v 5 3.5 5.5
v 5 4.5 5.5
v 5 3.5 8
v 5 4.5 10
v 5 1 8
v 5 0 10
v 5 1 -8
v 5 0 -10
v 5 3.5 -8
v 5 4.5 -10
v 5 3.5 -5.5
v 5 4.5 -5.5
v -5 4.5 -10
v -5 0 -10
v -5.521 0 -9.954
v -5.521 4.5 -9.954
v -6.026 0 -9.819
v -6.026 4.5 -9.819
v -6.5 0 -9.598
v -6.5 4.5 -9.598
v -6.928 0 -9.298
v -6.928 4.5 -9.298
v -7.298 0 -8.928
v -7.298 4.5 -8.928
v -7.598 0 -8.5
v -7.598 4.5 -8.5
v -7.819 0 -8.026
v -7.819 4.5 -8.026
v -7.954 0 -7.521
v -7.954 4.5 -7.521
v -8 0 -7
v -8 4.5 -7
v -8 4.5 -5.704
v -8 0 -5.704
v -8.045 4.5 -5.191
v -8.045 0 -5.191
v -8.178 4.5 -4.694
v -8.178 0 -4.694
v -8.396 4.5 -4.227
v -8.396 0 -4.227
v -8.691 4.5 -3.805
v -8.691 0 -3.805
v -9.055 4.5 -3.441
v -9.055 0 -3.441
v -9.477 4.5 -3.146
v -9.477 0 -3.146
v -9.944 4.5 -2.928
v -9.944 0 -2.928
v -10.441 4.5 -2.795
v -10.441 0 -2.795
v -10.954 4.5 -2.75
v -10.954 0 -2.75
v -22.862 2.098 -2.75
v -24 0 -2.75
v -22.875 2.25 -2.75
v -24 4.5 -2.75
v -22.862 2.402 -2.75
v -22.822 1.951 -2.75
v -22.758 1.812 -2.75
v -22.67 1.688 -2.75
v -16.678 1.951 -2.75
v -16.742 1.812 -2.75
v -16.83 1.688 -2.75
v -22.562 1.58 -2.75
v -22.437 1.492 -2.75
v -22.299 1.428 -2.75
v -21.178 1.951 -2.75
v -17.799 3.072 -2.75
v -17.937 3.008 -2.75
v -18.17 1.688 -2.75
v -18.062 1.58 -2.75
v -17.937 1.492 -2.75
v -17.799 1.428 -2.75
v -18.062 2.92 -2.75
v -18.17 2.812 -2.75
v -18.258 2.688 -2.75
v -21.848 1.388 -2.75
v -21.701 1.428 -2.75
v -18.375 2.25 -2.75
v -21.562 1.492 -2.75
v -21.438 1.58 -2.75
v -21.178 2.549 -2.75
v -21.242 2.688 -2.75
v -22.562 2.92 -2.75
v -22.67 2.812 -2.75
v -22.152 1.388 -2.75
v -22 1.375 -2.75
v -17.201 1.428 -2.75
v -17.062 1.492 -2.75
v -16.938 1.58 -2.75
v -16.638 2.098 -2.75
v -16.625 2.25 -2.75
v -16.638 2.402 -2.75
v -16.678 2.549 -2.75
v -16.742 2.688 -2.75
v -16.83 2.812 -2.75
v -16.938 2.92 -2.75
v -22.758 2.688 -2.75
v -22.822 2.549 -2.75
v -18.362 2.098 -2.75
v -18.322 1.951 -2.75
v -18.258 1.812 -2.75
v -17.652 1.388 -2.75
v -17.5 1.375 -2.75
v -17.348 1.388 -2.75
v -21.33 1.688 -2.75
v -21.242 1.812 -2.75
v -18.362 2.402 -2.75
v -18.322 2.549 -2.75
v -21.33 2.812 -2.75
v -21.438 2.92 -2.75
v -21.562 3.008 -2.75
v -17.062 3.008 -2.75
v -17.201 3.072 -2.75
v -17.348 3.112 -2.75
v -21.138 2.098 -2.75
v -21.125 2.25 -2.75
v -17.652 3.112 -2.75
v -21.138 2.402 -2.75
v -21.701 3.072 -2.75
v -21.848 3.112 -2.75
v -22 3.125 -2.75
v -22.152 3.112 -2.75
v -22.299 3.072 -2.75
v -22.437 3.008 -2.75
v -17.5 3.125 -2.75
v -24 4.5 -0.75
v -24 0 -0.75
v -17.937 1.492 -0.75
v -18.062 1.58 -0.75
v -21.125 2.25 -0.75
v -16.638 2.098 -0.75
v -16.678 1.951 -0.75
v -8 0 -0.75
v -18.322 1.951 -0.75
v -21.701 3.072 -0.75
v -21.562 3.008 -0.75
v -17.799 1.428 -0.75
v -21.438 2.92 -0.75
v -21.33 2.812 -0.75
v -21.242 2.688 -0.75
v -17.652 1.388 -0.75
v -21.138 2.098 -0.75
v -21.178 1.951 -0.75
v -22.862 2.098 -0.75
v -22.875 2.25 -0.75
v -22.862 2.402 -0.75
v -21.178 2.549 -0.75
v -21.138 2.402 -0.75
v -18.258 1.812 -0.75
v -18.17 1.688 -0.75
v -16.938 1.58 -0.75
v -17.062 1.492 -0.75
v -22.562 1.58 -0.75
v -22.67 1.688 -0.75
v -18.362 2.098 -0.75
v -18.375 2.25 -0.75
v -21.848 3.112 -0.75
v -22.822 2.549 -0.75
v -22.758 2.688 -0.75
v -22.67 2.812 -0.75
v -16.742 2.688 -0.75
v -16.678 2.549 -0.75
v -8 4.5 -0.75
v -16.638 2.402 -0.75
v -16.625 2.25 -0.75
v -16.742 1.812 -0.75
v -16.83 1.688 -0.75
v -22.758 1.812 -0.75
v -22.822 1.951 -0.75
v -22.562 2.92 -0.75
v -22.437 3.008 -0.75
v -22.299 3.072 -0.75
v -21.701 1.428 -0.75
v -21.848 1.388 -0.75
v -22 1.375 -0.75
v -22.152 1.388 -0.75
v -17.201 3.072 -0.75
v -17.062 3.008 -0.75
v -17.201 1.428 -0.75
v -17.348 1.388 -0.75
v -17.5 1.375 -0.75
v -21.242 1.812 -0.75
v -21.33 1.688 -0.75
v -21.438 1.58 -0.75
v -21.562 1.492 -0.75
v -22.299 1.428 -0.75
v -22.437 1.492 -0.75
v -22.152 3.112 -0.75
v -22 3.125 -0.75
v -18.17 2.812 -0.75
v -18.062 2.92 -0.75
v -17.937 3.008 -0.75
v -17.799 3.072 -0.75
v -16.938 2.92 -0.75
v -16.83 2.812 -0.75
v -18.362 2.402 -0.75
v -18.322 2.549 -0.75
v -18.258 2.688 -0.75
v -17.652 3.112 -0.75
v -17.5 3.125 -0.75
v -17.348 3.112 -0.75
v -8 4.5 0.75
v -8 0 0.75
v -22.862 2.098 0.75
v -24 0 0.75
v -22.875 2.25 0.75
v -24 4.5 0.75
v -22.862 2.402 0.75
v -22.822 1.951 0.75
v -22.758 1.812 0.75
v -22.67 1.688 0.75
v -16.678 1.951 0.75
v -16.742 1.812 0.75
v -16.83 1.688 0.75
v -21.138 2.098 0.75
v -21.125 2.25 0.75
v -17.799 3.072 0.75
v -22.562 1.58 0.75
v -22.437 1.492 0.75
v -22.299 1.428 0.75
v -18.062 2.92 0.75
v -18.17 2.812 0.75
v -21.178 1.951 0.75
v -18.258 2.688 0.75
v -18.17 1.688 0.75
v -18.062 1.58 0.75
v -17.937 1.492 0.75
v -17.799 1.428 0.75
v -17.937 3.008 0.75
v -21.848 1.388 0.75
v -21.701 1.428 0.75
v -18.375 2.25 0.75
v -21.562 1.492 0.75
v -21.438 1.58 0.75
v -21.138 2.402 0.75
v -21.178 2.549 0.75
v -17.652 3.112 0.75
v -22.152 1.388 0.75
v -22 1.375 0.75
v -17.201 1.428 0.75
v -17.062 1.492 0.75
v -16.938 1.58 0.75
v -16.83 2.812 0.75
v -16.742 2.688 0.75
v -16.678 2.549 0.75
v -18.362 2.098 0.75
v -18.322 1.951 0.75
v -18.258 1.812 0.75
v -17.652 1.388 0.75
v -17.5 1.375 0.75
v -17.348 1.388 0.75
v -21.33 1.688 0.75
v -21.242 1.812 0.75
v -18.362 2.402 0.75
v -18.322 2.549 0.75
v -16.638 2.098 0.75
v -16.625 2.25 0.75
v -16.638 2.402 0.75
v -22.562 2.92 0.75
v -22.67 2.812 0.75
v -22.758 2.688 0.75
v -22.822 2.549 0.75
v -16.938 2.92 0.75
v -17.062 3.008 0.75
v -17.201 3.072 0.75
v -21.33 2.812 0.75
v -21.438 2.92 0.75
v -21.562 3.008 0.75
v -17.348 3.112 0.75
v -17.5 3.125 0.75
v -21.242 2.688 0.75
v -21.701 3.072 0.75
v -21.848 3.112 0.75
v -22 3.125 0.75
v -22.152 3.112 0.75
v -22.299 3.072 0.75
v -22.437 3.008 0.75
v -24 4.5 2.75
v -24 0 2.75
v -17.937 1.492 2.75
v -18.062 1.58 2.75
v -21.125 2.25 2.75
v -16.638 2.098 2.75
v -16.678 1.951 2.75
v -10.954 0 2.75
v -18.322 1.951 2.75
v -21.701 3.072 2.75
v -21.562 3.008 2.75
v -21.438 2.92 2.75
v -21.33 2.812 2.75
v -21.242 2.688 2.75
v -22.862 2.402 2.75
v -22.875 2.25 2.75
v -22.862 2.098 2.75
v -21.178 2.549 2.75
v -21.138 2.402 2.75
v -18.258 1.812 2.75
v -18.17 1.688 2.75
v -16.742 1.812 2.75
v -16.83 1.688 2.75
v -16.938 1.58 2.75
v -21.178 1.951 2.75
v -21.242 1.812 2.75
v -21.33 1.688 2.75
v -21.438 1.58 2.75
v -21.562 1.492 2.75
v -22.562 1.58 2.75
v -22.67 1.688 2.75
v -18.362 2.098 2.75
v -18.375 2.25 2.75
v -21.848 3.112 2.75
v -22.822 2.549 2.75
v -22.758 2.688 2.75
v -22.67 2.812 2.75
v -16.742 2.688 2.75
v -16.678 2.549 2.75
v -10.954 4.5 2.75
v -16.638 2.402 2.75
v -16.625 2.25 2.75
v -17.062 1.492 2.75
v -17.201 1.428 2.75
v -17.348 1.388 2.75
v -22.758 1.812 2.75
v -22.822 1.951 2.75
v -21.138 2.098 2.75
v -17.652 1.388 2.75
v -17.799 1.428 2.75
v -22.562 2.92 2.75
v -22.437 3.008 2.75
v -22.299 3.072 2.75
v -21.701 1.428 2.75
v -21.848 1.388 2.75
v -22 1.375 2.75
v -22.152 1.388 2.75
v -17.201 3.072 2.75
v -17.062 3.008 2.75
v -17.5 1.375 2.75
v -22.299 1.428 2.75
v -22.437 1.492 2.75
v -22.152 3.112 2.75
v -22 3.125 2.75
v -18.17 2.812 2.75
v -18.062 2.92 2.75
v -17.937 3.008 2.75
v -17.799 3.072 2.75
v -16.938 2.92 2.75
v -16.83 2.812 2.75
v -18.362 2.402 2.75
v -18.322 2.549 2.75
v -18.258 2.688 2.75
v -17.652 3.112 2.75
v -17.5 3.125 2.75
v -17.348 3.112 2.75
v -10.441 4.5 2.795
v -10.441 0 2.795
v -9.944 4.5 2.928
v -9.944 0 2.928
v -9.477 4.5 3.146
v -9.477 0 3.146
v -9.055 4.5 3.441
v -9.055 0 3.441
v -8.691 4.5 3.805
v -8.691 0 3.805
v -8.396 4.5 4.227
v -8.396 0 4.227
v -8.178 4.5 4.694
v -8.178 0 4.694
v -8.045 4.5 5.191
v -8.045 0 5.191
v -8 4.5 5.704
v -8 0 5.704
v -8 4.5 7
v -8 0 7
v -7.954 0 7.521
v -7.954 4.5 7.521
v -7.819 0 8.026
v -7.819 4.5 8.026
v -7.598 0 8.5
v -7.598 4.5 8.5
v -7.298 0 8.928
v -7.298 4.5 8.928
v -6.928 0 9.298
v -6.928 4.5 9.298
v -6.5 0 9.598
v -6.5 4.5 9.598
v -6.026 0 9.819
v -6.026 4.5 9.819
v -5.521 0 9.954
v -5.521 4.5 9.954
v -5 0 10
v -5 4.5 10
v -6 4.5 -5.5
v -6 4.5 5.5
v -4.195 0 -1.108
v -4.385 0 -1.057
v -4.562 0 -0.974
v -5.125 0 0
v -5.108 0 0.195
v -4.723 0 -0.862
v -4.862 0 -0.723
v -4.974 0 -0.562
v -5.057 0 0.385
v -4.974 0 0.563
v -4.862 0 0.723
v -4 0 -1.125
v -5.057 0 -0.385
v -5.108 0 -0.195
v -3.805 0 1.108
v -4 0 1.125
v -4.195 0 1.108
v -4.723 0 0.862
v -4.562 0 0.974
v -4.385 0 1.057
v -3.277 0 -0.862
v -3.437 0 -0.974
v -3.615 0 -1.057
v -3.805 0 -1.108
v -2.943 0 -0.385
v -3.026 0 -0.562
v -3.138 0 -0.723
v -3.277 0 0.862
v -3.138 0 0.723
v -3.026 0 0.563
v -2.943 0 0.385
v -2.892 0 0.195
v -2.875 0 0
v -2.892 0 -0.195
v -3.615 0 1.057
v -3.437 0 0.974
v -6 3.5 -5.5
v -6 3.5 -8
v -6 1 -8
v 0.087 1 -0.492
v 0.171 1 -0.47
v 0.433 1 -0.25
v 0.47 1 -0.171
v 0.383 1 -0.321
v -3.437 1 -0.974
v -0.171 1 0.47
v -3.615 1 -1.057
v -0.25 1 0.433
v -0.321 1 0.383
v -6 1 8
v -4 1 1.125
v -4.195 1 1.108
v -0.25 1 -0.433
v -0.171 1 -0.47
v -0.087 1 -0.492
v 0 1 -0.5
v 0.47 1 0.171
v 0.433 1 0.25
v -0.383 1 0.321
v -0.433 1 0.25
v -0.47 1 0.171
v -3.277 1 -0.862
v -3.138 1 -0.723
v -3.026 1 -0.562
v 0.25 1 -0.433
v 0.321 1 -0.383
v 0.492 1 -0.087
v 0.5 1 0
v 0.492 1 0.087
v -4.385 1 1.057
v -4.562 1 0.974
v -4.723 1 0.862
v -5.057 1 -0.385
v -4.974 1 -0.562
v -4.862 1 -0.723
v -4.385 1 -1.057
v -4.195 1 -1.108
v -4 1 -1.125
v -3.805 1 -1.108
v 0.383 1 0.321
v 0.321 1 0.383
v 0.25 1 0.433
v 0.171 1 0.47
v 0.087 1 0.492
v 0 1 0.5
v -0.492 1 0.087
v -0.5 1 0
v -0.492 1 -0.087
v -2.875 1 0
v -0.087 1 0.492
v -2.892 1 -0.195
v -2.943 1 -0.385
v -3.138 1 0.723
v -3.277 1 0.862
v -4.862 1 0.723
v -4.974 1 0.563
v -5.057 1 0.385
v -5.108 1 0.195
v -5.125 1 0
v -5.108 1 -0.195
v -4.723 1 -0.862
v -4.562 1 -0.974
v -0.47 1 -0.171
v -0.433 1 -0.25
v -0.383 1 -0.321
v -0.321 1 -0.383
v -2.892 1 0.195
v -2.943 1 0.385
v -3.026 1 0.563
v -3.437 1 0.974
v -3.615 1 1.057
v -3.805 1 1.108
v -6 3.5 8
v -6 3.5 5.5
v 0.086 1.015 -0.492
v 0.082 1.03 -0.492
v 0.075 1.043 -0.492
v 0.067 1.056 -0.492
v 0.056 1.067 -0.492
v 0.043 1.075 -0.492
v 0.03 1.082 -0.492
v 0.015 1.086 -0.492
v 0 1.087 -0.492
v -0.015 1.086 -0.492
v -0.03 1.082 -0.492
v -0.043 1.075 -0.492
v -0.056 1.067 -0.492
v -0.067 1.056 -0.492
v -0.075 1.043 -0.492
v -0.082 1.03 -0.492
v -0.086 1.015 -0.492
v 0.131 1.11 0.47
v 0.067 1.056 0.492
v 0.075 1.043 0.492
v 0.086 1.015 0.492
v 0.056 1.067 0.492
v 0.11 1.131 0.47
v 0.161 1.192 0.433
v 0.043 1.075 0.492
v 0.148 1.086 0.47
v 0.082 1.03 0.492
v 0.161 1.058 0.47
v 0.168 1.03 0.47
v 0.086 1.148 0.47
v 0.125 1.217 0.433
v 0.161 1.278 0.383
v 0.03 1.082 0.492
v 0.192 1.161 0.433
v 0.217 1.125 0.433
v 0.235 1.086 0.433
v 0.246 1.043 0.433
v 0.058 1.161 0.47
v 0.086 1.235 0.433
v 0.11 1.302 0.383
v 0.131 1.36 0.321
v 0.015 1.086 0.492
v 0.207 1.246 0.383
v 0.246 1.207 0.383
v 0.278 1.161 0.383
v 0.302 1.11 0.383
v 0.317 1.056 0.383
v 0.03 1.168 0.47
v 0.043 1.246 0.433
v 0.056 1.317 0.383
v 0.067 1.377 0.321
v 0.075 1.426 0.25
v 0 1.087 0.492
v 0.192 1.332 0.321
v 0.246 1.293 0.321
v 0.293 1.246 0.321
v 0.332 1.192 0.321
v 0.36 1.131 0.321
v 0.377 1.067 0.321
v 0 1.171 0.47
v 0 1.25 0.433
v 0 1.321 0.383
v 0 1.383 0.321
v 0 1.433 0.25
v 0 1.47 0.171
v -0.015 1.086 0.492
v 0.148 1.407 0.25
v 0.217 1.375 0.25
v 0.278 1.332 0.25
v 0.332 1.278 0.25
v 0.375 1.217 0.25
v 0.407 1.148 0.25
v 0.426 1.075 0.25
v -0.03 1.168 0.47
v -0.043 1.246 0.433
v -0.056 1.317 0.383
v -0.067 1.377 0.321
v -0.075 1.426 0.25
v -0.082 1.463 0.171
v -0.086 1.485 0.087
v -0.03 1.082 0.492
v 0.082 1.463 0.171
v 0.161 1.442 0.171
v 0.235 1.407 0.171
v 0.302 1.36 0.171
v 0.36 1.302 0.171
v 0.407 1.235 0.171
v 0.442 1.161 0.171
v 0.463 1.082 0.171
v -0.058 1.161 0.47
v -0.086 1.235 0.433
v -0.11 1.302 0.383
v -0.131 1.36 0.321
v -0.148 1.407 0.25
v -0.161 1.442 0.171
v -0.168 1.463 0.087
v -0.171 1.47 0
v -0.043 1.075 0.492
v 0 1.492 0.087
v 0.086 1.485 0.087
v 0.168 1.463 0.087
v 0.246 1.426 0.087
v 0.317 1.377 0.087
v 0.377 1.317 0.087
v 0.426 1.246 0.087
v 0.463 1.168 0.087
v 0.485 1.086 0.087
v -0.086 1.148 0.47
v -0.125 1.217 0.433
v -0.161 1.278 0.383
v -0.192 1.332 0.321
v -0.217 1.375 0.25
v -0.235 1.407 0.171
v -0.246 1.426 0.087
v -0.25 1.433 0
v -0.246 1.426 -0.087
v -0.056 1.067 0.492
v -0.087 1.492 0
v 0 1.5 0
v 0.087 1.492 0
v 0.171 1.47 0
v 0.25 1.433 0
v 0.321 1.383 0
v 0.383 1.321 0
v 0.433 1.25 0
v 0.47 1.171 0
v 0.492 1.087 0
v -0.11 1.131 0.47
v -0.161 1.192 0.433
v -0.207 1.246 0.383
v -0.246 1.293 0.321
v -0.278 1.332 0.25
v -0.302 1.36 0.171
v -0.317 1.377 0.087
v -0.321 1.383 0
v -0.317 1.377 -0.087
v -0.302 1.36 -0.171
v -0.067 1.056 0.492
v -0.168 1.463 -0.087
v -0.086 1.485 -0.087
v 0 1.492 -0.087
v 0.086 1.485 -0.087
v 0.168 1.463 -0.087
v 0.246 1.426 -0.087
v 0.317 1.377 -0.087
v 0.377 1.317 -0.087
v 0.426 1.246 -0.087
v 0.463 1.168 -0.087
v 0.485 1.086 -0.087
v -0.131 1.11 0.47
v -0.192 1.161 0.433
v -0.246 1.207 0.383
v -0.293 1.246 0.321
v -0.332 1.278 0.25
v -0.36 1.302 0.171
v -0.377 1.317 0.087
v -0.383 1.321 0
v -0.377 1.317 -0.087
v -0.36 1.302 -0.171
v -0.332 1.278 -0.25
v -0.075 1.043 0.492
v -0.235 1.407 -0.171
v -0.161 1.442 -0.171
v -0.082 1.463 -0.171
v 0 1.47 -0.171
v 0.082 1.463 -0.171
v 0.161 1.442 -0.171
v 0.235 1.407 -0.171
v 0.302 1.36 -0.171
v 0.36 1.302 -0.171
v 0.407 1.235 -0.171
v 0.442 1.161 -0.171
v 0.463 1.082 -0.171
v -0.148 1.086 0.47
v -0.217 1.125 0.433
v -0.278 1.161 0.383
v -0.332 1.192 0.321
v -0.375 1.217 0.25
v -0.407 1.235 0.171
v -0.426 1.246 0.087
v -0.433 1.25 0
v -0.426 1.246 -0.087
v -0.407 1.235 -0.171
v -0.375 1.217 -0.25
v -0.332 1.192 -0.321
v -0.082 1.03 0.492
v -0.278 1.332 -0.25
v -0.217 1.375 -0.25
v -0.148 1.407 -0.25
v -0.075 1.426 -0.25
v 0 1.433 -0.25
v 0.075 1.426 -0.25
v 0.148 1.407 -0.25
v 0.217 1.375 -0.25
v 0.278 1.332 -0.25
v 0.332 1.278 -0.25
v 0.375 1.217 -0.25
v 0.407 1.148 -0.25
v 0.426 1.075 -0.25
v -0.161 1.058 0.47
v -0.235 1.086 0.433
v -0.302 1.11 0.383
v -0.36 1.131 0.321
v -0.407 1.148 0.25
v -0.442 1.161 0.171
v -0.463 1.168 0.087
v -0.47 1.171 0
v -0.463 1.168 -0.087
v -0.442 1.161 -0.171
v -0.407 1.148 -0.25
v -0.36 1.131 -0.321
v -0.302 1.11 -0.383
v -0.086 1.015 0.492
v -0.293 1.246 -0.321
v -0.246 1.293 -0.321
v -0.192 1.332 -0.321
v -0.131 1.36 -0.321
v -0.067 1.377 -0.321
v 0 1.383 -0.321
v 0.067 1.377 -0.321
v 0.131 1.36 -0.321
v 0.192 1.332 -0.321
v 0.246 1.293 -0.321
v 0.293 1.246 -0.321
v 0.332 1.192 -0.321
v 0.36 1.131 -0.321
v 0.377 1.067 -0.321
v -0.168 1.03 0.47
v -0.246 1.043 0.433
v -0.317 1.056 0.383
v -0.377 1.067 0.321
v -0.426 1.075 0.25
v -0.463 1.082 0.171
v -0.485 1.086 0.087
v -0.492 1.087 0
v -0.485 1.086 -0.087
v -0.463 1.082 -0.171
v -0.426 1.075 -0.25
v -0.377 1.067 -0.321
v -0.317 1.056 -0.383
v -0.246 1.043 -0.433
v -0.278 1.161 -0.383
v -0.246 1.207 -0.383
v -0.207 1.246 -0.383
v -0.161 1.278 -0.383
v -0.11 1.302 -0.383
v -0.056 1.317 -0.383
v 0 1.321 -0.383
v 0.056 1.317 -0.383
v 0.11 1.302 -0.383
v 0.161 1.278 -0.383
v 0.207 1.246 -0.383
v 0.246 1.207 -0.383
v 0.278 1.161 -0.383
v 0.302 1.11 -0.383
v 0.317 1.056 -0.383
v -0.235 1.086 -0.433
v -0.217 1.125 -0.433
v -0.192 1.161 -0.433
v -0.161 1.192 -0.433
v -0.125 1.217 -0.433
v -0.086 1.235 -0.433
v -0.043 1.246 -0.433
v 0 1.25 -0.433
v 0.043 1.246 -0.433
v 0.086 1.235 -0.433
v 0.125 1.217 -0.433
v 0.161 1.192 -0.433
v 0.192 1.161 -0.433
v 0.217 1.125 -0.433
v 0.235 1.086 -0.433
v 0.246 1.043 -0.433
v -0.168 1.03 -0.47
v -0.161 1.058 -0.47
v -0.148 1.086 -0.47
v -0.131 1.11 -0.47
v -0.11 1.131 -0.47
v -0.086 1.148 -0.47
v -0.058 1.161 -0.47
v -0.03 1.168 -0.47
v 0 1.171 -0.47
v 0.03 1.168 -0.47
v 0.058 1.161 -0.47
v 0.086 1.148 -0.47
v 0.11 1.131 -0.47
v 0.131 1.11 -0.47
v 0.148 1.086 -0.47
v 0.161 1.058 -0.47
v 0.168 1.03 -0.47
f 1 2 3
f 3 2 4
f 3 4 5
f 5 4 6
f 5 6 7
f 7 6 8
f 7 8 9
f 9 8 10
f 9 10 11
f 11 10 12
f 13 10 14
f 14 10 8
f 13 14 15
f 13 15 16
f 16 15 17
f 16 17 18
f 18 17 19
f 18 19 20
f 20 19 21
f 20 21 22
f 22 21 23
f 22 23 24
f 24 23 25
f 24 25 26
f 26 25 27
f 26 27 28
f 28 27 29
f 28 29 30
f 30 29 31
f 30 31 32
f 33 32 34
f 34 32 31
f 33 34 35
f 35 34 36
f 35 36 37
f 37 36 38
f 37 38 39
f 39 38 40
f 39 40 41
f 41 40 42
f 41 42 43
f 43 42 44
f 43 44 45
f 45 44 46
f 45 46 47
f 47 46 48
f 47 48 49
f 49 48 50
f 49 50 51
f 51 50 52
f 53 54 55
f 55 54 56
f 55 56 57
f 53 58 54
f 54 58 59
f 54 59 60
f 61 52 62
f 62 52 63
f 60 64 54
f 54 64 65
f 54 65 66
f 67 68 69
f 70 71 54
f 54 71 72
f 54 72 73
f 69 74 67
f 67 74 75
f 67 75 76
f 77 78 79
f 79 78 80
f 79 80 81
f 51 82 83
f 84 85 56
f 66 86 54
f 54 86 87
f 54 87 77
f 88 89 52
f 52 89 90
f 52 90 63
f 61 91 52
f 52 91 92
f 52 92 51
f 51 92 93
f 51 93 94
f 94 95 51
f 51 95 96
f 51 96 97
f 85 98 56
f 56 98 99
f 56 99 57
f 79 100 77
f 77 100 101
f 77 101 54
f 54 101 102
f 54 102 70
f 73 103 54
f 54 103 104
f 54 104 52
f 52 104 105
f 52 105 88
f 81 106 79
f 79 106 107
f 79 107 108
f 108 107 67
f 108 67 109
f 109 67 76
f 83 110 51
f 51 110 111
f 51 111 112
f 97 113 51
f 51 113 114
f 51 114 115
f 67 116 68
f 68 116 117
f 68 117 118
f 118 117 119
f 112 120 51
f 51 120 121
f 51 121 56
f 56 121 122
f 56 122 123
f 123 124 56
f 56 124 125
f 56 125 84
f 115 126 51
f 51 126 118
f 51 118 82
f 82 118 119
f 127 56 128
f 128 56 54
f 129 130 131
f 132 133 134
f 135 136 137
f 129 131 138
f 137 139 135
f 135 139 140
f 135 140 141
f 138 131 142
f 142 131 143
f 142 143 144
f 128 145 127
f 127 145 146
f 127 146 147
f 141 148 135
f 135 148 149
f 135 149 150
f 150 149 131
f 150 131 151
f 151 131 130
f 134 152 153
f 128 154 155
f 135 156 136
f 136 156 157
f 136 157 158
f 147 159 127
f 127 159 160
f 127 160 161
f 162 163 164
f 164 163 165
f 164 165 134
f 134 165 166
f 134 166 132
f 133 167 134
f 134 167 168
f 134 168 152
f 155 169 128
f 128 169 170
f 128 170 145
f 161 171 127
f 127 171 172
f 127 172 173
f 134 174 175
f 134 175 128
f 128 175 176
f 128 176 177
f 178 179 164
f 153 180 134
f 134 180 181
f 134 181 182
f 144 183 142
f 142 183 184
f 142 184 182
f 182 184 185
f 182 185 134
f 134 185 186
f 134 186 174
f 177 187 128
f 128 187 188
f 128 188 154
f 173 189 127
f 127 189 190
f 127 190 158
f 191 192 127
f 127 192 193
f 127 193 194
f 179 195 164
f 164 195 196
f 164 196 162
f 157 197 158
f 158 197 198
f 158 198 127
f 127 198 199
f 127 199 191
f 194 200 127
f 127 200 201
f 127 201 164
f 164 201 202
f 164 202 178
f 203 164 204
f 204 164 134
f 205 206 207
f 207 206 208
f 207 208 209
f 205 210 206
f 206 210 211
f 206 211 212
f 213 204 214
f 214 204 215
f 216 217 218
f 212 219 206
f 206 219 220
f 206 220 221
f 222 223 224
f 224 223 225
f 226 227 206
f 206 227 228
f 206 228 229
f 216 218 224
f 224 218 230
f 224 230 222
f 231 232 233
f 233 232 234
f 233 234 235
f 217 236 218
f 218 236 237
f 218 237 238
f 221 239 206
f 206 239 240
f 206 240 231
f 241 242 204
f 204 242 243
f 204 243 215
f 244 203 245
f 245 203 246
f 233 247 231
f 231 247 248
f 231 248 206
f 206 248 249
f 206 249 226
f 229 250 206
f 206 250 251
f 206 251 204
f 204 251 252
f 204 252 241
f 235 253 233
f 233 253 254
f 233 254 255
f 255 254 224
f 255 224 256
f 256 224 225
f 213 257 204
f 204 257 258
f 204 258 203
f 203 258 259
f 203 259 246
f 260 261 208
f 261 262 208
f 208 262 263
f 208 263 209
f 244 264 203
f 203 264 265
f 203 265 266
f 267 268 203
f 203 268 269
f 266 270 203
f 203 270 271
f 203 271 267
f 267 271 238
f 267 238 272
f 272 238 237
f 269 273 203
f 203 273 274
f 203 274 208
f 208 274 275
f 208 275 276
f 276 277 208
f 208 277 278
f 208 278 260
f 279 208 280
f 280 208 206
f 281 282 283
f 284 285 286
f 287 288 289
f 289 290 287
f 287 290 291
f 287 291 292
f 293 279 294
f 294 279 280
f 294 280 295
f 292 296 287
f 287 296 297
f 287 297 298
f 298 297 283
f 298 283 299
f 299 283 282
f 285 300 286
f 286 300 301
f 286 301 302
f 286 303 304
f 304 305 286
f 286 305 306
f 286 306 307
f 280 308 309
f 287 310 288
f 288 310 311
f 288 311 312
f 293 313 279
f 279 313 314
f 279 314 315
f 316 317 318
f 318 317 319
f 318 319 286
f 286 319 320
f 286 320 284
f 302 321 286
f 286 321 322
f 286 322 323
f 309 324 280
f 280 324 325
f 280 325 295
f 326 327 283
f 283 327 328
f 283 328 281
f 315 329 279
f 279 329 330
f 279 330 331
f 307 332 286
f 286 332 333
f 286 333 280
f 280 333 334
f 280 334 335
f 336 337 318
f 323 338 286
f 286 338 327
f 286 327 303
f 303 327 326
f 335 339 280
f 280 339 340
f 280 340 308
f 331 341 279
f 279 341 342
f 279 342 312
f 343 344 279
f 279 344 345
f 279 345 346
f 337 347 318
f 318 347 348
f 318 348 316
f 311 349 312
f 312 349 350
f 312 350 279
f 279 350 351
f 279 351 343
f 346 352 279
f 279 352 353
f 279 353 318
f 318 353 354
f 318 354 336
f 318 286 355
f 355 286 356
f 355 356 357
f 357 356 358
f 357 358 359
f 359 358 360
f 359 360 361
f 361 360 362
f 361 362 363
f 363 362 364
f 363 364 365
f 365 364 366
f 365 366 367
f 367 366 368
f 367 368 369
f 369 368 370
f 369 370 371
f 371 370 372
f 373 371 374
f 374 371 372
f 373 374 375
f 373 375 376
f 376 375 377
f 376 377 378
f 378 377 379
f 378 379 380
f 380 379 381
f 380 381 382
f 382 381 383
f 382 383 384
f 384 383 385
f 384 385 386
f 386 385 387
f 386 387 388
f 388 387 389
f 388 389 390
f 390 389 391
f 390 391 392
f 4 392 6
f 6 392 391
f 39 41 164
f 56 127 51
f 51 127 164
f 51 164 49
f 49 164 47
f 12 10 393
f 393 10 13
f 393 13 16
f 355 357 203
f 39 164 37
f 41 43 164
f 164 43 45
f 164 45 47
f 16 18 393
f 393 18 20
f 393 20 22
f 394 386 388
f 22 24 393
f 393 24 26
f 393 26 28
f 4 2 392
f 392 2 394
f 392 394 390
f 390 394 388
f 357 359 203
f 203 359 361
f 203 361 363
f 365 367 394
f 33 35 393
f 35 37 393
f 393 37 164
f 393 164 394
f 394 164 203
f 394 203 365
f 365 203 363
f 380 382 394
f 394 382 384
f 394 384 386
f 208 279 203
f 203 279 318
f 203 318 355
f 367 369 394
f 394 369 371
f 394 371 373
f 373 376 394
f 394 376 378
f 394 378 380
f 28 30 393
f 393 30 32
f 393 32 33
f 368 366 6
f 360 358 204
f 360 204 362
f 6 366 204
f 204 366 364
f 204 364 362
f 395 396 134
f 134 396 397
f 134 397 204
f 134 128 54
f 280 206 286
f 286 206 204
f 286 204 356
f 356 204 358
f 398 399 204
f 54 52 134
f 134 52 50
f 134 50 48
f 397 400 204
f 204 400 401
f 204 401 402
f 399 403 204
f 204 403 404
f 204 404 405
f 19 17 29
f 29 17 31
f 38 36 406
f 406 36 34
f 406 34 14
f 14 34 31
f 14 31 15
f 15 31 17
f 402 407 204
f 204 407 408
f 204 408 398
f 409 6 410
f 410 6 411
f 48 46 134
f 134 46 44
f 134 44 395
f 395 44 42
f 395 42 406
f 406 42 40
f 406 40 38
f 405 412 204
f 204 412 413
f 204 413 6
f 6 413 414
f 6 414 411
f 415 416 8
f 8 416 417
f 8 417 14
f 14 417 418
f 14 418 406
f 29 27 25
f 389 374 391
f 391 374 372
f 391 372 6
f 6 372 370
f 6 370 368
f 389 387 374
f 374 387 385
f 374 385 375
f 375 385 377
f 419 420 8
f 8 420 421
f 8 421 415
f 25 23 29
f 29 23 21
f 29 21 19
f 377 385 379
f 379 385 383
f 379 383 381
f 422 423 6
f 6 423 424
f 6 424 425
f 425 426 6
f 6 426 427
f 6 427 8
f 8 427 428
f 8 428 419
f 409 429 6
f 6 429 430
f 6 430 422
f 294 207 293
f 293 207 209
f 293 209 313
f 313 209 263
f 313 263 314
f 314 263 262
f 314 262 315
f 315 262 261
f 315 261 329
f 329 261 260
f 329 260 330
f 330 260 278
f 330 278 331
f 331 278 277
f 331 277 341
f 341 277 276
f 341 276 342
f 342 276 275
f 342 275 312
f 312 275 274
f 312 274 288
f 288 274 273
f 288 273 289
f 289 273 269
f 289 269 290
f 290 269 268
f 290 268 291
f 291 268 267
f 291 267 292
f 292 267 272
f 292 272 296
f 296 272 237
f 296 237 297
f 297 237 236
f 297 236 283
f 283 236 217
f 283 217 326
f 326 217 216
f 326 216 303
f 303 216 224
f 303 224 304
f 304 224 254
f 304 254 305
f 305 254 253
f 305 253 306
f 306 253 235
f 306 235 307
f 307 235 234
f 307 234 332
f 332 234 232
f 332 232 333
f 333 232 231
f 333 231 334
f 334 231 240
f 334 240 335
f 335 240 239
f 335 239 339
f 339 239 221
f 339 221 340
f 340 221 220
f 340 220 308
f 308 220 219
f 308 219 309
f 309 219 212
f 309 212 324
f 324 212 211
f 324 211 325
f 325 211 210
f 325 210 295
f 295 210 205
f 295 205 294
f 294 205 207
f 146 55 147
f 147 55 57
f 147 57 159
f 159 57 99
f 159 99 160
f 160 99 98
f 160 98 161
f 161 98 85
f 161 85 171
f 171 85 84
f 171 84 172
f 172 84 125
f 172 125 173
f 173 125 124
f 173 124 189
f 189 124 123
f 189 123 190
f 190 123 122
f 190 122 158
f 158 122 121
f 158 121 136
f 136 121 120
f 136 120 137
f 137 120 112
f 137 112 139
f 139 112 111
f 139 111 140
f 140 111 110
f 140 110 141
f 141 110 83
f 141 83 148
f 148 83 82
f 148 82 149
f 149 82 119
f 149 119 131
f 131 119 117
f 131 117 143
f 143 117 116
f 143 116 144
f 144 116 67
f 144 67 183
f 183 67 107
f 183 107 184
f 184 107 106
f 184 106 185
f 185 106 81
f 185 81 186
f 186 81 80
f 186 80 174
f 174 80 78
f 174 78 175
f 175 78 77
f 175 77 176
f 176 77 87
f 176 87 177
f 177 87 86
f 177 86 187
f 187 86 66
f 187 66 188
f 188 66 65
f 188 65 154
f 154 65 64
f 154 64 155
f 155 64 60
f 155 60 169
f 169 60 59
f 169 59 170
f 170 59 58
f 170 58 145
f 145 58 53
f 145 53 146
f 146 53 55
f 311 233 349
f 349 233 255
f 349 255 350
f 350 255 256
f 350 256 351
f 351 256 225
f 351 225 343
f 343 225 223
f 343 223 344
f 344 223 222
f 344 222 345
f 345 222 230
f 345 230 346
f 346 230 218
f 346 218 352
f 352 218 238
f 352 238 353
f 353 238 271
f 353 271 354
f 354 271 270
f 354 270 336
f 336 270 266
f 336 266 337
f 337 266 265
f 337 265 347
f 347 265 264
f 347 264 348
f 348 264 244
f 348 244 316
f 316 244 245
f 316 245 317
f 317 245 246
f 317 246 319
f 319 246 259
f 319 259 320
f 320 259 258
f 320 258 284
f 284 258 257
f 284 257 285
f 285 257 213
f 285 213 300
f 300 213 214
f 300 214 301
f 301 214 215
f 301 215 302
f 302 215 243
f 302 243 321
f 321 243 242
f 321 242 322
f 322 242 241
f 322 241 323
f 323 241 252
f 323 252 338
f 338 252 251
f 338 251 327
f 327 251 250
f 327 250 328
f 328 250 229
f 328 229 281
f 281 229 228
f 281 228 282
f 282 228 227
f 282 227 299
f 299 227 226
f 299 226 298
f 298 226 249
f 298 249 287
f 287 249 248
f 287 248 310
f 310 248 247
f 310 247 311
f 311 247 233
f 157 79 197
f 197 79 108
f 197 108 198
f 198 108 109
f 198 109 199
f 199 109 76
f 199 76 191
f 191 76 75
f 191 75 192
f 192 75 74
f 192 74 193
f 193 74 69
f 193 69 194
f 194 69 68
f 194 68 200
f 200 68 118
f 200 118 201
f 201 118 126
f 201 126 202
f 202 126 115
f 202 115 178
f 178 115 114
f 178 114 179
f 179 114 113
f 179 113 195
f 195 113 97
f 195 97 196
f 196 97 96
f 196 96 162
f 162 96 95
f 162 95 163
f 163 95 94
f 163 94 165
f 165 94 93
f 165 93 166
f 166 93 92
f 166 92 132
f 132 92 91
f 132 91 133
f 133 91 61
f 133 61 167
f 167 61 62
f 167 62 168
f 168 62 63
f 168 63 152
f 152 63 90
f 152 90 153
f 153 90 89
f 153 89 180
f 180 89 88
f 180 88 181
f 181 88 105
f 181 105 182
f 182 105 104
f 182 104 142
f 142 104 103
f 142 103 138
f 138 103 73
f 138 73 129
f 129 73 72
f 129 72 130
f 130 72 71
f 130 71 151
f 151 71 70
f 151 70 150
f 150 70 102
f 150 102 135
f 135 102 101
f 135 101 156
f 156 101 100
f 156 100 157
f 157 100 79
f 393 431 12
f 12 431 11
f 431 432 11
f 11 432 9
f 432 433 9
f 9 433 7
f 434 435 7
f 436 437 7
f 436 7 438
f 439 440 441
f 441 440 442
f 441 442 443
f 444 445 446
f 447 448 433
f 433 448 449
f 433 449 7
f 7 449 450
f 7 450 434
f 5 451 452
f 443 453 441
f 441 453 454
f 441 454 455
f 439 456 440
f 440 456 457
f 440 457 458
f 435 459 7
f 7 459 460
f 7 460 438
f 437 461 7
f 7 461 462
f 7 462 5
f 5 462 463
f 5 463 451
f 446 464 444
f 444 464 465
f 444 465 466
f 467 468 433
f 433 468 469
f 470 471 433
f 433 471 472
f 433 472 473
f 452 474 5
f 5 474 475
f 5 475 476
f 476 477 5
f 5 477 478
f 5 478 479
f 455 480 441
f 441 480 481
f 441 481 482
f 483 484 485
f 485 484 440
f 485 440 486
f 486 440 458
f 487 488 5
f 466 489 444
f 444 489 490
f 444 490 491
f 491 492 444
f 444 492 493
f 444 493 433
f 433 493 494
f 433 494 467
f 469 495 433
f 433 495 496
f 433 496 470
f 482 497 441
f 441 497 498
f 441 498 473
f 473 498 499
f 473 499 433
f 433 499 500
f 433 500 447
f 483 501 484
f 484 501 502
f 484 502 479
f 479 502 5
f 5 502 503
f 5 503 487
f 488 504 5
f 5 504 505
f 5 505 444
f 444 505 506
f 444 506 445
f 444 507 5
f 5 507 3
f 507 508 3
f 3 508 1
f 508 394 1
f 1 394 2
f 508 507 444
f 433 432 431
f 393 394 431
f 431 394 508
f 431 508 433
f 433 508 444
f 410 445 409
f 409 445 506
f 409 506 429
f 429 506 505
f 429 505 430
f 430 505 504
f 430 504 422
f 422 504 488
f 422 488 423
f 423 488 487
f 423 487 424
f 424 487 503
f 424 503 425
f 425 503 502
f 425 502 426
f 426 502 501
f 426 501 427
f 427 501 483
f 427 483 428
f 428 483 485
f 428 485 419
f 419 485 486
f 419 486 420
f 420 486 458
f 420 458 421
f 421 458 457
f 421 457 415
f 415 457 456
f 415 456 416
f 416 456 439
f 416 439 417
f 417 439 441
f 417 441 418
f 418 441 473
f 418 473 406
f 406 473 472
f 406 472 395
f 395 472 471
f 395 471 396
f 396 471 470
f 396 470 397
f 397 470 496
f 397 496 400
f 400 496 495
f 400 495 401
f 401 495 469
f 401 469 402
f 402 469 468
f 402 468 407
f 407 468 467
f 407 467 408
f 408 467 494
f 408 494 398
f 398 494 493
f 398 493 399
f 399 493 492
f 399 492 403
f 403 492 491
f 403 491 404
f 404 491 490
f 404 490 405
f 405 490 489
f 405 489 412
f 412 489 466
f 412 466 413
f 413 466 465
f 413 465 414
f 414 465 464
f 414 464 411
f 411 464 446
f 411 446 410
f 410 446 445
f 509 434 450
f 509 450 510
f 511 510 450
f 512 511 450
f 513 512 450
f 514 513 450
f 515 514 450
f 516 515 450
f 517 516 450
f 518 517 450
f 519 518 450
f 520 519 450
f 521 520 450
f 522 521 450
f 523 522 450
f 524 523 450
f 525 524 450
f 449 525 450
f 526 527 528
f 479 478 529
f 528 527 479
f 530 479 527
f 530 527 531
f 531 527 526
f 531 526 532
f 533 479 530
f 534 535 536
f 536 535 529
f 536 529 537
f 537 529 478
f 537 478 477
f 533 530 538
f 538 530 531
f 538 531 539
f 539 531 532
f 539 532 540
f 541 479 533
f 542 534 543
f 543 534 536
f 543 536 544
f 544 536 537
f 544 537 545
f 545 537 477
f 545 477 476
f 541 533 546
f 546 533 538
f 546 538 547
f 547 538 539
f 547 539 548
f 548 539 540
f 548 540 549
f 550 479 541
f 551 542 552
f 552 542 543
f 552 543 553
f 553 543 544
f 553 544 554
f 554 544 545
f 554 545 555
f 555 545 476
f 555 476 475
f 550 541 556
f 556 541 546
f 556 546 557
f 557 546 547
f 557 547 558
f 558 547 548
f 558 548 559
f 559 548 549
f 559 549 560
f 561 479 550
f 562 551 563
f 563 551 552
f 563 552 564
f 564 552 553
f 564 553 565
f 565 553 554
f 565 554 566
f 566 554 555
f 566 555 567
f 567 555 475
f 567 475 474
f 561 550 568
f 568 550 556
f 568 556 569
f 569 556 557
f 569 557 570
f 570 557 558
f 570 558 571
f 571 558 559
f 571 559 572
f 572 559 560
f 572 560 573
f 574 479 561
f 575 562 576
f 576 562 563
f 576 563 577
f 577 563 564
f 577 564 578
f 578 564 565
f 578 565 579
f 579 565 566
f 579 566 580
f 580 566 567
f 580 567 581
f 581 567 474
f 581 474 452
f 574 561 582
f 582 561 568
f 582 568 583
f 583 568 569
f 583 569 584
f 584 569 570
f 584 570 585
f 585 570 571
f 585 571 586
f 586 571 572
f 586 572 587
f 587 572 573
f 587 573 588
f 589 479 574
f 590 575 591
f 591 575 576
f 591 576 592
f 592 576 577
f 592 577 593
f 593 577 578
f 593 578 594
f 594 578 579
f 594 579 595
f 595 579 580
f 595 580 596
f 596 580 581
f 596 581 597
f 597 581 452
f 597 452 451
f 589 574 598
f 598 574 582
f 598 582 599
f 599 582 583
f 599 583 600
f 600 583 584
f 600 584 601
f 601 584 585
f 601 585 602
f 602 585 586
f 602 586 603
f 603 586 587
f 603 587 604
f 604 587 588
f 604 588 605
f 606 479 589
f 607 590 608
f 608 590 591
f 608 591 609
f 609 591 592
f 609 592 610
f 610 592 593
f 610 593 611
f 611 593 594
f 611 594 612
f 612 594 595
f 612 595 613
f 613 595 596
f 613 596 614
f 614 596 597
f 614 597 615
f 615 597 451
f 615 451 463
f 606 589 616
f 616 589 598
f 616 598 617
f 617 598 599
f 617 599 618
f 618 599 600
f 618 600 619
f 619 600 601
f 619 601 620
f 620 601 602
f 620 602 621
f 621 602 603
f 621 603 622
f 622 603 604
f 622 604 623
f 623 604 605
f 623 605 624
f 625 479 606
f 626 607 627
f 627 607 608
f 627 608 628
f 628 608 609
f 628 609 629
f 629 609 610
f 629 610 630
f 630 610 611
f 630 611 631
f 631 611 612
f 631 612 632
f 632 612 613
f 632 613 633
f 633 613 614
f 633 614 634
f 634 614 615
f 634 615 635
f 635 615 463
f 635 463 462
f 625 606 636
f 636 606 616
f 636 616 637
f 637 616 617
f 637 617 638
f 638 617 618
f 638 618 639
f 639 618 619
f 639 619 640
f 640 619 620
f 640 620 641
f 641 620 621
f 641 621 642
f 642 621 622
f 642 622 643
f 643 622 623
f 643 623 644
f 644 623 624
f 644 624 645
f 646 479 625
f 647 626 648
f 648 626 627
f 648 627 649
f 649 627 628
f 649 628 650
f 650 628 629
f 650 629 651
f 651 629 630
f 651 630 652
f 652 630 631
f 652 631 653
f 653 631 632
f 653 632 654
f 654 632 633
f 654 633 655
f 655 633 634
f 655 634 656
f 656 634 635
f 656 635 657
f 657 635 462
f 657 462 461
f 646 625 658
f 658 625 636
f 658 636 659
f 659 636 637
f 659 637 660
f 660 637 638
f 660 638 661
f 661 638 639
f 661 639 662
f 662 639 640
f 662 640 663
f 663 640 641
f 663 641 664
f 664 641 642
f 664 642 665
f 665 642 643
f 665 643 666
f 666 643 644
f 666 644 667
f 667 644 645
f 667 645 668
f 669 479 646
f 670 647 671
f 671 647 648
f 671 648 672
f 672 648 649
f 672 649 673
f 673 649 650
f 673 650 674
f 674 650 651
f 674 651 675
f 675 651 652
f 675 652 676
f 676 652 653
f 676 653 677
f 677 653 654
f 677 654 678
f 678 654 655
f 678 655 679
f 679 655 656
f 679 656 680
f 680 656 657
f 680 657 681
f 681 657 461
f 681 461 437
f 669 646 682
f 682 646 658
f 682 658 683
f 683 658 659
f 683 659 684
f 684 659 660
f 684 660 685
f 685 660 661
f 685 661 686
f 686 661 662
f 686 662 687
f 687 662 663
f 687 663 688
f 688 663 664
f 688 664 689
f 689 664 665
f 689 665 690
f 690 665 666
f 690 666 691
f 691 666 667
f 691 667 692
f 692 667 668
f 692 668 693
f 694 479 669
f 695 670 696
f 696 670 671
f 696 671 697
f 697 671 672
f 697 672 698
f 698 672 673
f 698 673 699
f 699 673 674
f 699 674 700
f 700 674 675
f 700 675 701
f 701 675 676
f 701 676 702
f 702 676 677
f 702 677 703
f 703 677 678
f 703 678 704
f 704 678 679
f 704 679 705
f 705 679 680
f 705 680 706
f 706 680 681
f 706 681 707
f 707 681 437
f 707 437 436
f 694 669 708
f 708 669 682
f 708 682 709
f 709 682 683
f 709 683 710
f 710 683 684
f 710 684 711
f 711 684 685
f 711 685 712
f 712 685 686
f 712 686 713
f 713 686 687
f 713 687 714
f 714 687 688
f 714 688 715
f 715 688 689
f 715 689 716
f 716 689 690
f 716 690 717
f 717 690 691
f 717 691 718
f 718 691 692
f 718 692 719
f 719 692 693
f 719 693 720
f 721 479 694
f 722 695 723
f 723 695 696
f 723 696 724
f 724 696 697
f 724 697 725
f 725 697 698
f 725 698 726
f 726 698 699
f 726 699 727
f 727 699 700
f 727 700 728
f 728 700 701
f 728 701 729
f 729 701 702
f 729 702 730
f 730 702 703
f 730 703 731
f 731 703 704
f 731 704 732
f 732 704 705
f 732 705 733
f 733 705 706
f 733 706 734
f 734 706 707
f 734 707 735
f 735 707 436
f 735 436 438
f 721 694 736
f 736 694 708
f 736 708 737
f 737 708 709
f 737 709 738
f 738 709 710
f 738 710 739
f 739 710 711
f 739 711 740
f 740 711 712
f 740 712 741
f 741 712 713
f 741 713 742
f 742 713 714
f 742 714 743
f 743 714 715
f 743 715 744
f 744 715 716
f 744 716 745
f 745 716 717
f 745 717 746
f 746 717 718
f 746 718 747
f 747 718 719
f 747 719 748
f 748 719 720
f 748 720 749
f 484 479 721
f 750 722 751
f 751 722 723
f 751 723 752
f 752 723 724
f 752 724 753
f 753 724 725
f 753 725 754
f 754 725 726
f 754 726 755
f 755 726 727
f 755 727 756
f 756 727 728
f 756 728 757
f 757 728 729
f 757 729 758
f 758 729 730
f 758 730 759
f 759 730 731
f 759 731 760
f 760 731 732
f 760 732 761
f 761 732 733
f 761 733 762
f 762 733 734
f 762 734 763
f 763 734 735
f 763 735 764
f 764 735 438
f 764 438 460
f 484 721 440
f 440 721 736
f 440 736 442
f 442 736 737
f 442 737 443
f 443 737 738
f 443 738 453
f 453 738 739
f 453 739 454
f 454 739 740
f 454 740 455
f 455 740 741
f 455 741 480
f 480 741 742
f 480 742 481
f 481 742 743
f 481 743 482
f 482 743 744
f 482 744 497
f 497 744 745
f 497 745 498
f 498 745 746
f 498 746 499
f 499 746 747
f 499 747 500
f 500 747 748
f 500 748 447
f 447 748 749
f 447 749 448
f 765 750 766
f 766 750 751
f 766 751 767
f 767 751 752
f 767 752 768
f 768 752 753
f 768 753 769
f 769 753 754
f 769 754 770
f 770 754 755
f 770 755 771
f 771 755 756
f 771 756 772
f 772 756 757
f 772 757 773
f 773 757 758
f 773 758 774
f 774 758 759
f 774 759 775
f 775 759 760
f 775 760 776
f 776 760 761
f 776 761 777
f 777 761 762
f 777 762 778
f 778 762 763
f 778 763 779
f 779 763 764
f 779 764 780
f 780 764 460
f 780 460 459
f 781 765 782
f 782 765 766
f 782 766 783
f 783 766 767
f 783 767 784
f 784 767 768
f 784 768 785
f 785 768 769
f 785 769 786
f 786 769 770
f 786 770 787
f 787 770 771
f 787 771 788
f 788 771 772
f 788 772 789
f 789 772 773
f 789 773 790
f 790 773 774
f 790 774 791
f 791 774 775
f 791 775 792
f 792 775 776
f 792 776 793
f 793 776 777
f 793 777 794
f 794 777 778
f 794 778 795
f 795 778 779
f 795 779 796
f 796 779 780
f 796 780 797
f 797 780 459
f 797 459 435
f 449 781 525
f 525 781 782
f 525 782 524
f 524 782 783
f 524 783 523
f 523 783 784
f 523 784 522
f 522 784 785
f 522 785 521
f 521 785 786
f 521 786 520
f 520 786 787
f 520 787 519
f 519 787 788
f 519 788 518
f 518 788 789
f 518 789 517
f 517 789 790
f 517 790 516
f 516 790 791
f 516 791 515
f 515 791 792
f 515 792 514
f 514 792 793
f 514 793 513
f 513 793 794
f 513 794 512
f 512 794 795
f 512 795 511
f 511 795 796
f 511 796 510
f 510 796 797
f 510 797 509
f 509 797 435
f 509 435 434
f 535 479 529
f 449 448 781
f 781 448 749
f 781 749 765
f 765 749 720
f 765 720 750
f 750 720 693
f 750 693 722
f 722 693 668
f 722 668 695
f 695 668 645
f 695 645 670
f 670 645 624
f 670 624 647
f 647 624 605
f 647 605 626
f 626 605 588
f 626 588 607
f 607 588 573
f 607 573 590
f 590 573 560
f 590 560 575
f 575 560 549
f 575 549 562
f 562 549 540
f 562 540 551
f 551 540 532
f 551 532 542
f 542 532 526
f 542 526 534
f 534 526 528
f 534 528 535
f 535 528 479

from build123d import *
from build123d.topology import SkipClean

# Parameters (mm, degrees)
SALIENTE_EXTRUIR1_DEPTH    = 4.5
CORTAR_EXTRUIR4_DEPTH      = 10
CORTAR_EXTRUIR4_DEPTH_BACK = 28.546551508
CROQUIS7_R                 = 0.875
CORTAR_EXTRUIR5_DEPTH      = 11
CROQUIS9_R                 = 1.125
CORTAR_EXTRUIR6_DEPTH      = 27.234519245


with BuildPart() as part:
    # Croquis1 → Saliente-Extruir1 (new body)
    with BuildSketch(Plane(origin=(0, 0, 0), x_dir=(1, 0, 0), z_dir=(0, 1, 0))):
        with BuildLine():
            Line((-5, -10), (5, -10))
            Line((5, -10), (5, 10))
            Line((5, 10), (-5, 10))
            ThreePointArc((-5, 10), (-7.121320344, 9.121320344), (-8, 7))
            Line((-8, 7), (-8, 5.703831235))
            ThreePointArc((-8, 5.703831235), (-8.865157138, 3.615157138), (-10.953831235, 2.75))
            Line((-10.953831235, 2.75), (-24, 2.75))
            Line((-24, 2.75), (-24, 0.75))
            Line((-24, 0.75), (-8, 0.75))
            Line((-8, 0.75), (-8, -0.75))
            Line((-8, -0.75), (-24, -0.75))
            Line((-24, -0.75), (-24, -2.75))
            Line((-24, -2.75), (-10.953831235, -2.75))
            ThreePointArc((-10.953831235, -2.75), (-8.865157138, -3.615157138), (-8, -5.703831235))
            Line((-8, -5.703831235), (-8, -7))
            ThreePointArc((-8, -7), (-7.121320344, -9.121320344), (-5, -10))
        make_face()
    extrude(amount=SALIENTE_EXTRUIR1_DEPTH)

    # Croquis7 → Cortar-Extruir4 (cut, two sides: drawn at the far end of the back side and taken through both)
    with BuildSketch(Plane.XY.offset(2.75).offset(-CORTAR_EXTRUIR4_DEPTH_BACK)):
        with Locations(Location((-22, 2.25, 0), (0, 0, 180))):
            Circle(CROQUIS7_R)
        with Locations(Location((-17.5, 2.25, 0), (0, 0, 180))):
            Circle(CROQUIS7_R)
    extrude(amount=CORTAR_EXTRUIR4_DEPTH + CORTAR_EXTRUIR4_DEPTH_BACK, mode=Mode.SUBTRACT)

    # Croquis8 → Cortar-Extruir5 (cut)
    with BuildSketch(Plane(origin=(5, 0, 0), x_dir=(0, 0, -1), z_dir=(1, 0, 0))):
        Polygon((-8, 1), (8, 1), (8, 3.5), (5.5, 3.5), (5.5, 4.5), (-5.5, 4.5), (-5.5, 3.5), (-8, 3.5), align=None)
    extrude(amount=-CORTAR_EXTRUIR5_DEPTH, mode=Mode.SUBTRACT)

    # Croquis9 → Cortar-Extruir6 (cut, through all)
    with BuildSketch(Plane(origin=(0, 1, 0), x_dir=(1, 0, 0), z_dir=(0, 1, 0))):
        with Locations(Location((-4, 0, 0), (0, 0, 270))):
            Circle(CROQUIS9_R)
    extrude(amount=-CORTAR_EXTRUIR6_DEPTH, mode=Mode.SUBTRACT)

    # Croquis11 → Revolución2 (revolve)
    with SkipClean():  # the faces are left unmerged after this step: merging them gives an invalid solid
        with BuildSketch(Plane(origin=(0, 0, 0), x_dir=(0, 0, -1), z_dir=(1, 0, 0))):
            with BuildLine():
                Line((-0.5, 1), (0.5, 1))
                ThreePointArc((0.5, 1), (0, 1.5), (-0.5, 1))
            make_face()
        revolve(axis=Axis((0, 1, 0.5), (0, 0, -1)))


solid = part.part
